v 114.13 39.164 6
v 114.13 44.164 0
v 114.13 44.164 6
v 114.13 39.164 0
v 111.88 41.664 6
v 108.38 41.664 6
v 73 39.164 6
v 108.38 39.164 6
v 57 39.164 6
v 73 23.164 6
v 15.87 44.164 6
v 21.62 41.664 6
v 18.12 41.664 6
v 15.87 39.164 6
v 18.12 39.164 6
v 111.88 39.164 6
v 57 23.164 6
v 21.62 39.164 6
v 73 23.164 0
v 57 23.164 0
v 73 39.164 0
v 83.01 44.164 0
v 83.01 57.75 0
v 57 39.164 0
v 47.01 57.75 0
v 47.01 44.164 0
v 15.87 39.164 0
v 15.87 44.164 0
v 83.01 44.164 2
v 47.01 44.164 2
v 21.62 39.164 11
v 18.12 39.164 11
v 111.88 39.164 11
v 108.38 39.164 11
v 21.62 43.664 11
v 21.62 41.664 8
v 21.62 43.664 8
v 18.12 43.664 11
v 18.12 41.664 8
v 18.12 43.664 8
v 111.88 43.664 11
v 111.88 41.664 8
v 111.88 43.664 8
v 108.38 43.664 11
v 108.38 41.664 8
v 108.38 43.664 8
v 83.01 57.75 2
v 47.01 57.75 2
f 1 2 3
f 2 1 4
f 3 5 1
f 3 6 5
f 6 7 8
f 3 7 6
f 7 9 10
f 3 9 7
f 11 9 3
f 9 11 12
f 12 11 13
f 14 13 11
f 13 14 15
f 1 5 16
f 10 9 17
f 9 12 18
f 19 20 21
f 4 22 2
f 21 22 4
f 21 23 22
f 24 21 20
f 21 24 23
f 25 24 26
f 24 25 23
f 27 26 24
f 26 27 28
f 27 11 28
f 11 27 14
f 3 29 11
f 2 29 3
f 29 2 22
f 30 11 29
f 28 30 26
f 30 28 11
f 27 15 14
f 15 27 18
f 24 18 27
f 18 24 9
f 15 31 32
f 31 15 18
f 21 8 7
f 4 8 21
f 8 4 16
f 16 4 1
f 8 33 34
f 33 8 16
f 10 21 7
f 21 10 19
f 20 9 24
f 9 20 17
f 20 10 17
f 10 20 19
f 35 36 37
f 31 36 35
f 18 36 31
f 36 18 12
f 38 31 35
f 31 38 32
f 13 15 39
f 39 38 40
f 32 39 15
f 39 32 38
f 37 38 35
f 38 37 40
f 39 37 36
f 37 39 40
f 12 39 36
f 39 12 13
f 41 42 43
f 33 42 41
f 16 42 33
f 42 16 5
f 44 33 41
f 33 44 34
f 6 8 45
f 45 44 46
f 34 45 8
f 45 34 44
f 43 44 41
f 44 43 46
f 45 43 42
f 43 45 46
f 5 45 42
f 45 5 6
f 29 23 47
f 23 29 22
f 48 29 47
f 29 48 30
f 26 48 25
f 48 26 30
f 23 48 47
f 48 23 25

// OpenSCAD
// file: hggh/usb_c_breakout_case_holder.scad
module pcb() {
    translate([0, 1.049 -0.5, 0]) {
        cube([20.5, 11.3 +0.5, 1.7]);
    }
    translate([5.9, 0, 0]) {
        cube([8.699, 1.049, 1.7]);
    }
    
    // USB-C
    translate([5.9 - 0.25, 0, 1.6]) {
        cube([8.699 + 0.5, 7, 3.34]);
    }
    translate([0, 1.049, 0]) {
        translate([2.752, 7.750 + 0.5, -5]) {
            cylinder(d=2.2, h=10, $fn=190);
        }
        translate([17.752, 7.750 + 0.5, -5]) {
            cylinder(d=2.2, h=10, $fn=190);
        }
        
        // USB-C solder points
        translate([5.313, 0.45, -1]) {
            cube([1.3, 2, 3]);
        }
        translate([5.313, 4.271, -1]) {
            cube([1.3, 2, 3]);
        }
        translate([13.952, 0.45, -1]) {
            cube([1.3, 2, 3]);
        }
        translate([13.952, 4.271, -1]) {
            cube([1.3, 2, 3]);
        }
        
        //power connections
        translate([7.642, 7.270, -1]) {
            cube([5.2, 2, 3]);
        }
    }
}

module usb_c_breakout_case_holder() {

difference() {
    union() {
        cube([35, 2, 15]);
        translate([(35-20.5)/2, 0, 1]) {
            cube([20.5, 12, 4]);
        }
        translate([0, 2, 2]) cube([7, 5, 10]);
        translate([35-7, 2, 2]) cube([7, 5, 10]);
    }
    translate([3.5, 0, 15/2]) {
        rotate([270, 0, 0]) cylinder(d=3.2, h=10, $fn=190);
        translate([0, 3, 0])
        rotate([270, 30, 0]) cylinder(r = 5.5 / 2 / cos(180 / 6) + 0.05, h=4.1, $fn=6);
    }
    translate([35-3.5, 0, 15/2]) {
        rotate([270, 0, 0]) cylinder(d=3.2, h=10, $fn=190);
        translate([0, 3, 0])
        rotate([270, 30, 0]) cylinder(r = 5.5 / 2 / cos(180 / 6) + 0.05, h=4.1, $fn=6);
    }
    translate([((35-20.5)/2), 0, (15-2.56)/2-2]) {
        pcb();
    }
}


translate([60, 0, 0]) {
    difference() {
        union() {
            cube([35, 12, 15]);
        }
        translate([7.5, -1, 1.5]) {
            cube([20, 200, 12]);
        }
        translate([3.5, 0, 15/2]) {
            rotate([270, 0, 0]) cylinder(d=3.2, h=200, $fn=190);
        }
        translate([35-3.5, 0, 15/2]) {
            rotate([270, 0, 0]) cylinder(d=3.2, h=200, $fn=190);
        }
    }
}
}
// main file
use <hggh/usb_c_breakout_case_holder.scad>

$fn=190;

SIZE_X_OUTSIDE = 130;
SIDE_Y_OUTSIDE = 82;
SIZE_Z = 35-1.2;

module key() {
    difference() {
        cube([3.5, 4.5, 5]);
        translate([0, 2.5, 0]) {
            cube([10, 10, 2]);
        }
    }
}

translate([17.870 - 2, 39.164 , 0]) {
    cube([94.260 + 2 + 2, 5, 6]);
    
    translate([(94.260 + 2 + 2)/2 - 8, 0-16, 0]) {
        cube([16, 16, 6]);
    }
}
translate([18.120, 39.164, 6]) {
    key();
}
translate([SIZE_X_OUTSIDE-18.120-3.5, 39.164, 6]) {
    key();
}

translate([47.010, 33.750+6, 0]) {
    cube([36, 18, 2]);
}
